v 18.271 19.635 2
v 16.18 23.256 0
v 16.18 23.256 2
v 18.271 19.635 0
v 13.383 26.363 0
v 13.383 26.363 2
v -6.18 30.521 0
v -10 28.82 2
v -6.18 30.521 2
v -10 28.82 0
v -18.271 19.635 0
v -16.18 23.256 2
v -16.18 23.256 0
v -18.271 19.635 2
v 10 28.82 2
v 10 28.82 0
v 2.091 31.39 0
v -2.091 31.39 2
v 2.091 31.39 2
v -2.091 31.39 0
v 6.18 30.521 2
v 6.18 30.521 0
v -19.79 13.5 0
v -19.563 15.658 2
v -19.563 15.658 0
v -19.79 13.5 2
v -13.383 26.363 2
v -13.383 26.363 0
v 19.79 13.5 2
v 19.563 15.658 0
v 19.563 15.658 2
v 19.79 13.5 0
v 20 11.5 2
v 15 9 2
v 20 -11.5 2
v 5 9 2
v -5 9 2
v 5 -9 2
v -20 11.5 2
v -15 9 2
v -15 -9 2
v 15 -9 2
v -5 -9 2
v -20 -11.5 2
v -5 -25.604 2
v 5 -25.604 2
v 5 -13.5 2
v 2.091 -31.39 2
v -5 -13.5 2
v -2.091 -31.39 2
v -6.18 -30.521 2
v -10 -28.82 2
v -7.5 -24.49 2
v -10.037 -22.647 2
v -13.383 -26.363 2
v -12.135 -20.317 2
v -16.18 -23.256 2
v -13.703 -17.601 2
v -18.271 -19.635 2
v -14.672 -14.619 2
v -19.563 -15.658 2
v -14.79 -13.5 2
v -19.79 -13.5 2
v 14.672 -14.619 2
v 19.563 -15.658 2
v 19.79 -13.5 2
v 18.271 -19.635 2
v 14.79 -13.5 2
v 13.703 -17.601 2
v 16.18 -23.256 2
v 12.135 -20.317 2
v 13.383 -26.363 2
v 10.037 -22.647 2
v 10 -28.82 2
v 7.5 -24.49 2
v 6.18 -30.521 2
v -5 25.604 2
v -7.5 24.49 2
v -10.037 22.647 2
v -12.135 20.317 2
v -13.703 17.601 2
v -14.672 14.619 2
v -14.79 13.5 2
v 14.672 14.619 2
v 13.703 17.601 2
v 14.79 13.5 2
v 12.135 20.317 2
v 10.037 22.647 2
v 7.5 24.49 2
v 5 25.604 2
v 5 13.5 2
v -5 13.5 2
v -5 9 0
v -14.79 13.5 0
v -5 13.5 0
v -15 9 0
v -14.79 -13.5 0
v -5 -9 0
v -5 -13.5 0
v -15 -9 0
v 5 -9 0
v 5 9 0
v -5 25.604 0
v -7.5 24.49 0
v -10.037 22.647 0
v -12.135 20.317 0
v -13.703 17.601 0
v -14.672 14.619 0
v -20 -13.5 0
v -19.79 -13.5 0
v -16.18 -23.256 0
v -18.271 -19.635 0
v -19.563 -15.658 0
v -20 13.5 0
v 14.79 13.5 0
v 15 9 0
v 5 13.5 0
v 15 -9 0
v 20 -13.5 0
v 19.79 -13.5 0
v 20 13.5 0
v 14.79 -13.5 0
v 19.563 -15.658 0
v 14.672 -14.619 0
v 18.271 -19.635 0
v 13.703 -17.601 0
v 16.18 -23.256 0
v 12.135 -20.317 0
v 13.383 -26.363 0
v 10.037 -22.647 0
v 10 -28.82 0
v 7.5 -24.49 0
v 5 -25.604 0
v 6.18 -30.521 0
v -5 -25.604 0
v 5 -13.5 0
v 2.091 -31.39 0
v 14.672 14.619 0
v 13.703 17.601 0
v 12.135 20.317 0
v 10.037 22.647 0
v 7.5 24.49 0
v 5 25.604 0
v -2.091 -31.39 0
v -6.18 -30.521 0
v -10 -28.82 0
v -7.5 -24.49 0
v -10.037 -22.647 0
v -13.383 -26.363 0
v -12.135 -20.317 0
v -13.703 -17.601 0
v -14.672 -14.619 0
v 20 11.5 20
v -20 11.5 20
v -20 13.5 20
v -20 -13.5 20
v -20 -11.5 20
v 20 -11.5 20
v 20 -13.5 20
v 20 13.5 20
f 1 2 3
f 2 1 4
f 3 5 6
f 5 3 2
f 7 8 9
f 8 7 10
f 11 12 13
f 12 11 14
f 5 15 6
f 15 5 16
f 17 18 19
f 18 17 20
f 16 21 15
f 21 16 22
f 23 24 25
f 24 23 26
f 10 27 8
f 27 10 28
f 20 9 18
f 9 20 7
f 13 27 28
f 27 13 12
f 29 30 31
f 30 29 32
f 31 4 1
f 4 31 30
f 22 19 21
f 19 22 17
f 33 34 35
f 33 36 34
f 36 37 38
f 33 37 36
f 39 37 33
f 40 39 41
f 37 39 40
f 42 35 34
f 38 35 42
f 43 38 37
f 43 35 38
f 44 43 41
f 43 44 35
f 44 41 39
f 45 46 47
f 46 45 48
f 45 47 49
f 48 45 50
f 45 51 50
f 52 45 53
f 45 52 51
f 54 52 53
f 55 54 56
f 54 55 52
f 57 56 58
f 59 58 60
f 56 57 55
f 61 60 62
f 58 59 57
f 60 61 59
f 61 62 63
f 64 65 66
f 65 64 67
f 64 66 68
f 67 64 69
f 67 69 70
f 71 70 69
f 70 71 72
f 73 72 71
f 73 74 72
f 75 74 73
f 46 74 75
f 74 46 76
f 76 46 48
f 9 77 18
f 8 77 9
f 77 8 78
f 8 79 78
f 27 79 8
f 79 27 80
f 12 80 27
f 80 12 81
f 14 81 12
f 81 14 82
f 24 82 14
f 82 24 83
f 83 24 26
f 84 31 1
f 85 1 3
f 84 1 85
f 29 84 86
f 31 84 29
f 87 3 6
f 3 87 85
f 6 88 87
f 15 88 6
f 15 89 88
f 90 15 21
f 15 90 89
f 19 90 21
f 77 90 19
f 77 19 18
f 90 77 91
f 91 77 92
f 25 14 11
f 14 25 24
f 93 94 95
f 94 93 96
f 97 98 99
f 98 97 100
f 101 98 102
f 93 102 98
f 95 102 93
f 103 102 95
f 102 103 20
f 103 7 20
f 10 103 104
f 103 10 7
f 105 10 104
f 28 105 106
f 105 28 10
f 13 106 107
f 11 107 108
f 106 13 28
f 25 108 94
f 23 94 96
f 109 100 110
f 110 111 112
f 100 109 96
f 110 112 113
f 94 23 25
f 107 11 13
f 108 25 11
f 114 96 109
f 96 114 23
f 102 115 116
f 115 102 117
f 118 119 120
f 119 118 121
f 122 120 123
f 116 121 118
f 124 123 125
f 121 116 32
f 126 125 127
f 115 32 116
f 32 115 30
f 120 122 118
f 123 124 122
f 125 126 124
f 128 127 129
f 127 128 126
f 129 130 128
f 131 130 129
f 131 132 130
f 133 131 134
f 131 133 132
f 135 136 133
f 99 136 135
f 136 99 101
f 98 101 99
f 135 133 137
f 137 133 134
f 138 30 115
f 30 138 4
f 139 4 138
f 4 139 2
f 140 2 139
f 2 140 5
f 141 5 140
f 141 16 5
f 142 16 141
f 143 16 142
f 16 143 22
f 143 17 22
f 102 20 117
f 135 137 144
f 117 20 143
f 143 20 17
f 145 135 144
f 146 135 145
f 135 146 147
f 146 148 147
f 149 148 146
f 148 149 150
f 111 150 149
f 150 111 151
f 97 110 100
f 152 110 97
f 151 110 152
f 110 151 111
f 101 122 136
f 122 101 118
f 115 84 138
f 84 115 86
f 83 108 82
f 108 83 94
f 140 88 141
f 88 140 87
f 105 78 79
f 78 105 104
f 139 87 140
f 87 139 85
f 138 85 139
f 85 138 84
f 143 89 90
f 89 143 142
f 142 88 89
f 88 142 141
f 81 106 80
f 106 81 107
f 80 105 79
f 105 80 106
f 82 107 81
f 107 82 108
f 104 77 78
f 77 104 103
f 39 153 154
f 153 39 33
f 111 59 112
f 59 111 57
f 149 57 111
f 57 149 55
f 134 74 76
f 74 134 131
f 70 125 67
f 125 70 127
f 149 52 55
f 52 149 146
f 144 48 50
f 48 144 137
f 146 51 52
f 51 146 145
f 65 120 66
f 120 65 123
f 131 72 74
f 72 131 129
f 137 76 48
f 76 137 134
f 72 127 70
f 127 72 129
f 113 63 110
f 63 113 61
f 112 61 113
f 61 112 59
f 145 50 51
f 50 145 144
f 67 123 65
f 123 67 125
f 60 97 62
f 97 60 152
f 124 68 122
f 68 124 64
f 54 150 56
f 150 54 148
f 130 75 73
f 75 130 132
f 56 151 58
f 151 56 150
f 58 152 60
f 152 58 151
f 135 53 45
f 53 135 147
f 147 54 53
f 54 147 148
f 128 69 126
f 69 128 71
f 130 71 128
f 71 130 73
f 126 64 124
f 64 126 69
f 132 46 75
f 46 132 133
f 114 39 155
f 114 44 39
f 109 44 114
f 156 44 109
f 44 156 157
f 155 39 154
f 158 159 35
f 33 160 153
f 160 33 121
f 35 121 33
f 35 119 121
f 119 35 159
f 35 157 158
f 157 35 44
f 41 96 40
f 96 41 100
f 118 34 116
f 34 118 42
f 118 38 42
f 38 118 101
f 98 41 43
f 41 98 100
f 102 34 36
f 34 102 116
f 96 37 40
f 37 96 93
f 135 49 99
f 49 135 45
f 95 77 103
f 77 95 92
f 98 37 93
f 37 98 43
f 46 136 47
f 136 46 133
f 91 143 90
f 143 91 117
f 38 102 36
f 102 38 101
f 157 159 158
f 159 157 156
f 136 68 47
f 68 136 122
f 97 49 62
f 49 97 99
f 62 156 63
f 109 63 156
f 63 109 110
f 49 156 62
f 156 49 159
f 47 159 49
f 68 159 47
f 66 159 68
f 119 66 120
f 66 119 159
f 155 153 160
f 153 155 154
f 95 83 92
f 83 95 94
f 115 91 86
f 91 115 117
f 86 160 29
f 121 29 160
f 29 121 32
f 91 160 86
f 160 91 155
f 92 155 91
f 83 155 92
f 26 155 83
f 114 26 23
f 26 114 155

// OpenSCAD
/*
The MIT License (MIT)

Copyright (c) 2020 Shinichi Ohki.

Permission is hereby granted, free of charge, to any person obtaining a copy
of this software and associated documentation files (the "Software"), to deal
in the Software without restriction, including without limitation the rights
to use, copy, modify, merge, publish, distribute, sublicense, and/or sell
copies of the Software, and to permit persons to whom the Software is
furnished to do so, subject to the following conditions:

The above copyright notice and this permission notice shall be included in
all copies or substantial portions of the Software.

THE SOFTWARE IS PROVIDED "AS IS", WITHOUT WARRANTY OF ANY KIND, EXPRESS OR
IMPLIED, INCLUDING BUT NOT LIMITED TO THE WARRANTIES OF MERCHANTABILITY,
FITNESS FOR A PARTICULAR PURPOSE AND NONINFRINGEMENT. IN NO EVENT SHALL THE
AUTHORS OR COPYRIGHT HOLDERS BE LIABLE FOR ANY CLAIM, DAMAGES OR OTHER
LIABILITY, WHETHER IN AN ACTION OF CONTRACT, TORT OR OTHERWISE, ARISING FROM,
OUT OF OR IN CONNECTION WITH THE SOFTWARE OR THE USE OR OTHER DEALINGS IN
THE SOFTWARE.
*/


wall_height = 20;

module half_circle() {
  difference() {
    cylinder(h = 2, r=20);
    cylinder(h = 2, r=15);
    translate([-20, -20, 0]) {
      cube(size = [40,20,2], center = false);
    }
  }
}

translate ([0, 11.5, 0]) {
  half_circle();
}

translate ([0, -11.5, 0]) {
  rotate([0,0,180]) {
    half_circle();
  }
}

translate ([0, 0, 1]) {
  cube(size = [10,60,2], center = true);
  difference() {
    cube(size = [40,23,2], center = true);
    cube(size = [30,18,2], center = true);
  }
}

translate ([-20, -13.5, 0]) {
  cube(size = [40,2,wall_height], center = false);
}
translate ([-20, 11.5, 0]) {
  cube(size = [40,2,wall_height], center = false);
}
